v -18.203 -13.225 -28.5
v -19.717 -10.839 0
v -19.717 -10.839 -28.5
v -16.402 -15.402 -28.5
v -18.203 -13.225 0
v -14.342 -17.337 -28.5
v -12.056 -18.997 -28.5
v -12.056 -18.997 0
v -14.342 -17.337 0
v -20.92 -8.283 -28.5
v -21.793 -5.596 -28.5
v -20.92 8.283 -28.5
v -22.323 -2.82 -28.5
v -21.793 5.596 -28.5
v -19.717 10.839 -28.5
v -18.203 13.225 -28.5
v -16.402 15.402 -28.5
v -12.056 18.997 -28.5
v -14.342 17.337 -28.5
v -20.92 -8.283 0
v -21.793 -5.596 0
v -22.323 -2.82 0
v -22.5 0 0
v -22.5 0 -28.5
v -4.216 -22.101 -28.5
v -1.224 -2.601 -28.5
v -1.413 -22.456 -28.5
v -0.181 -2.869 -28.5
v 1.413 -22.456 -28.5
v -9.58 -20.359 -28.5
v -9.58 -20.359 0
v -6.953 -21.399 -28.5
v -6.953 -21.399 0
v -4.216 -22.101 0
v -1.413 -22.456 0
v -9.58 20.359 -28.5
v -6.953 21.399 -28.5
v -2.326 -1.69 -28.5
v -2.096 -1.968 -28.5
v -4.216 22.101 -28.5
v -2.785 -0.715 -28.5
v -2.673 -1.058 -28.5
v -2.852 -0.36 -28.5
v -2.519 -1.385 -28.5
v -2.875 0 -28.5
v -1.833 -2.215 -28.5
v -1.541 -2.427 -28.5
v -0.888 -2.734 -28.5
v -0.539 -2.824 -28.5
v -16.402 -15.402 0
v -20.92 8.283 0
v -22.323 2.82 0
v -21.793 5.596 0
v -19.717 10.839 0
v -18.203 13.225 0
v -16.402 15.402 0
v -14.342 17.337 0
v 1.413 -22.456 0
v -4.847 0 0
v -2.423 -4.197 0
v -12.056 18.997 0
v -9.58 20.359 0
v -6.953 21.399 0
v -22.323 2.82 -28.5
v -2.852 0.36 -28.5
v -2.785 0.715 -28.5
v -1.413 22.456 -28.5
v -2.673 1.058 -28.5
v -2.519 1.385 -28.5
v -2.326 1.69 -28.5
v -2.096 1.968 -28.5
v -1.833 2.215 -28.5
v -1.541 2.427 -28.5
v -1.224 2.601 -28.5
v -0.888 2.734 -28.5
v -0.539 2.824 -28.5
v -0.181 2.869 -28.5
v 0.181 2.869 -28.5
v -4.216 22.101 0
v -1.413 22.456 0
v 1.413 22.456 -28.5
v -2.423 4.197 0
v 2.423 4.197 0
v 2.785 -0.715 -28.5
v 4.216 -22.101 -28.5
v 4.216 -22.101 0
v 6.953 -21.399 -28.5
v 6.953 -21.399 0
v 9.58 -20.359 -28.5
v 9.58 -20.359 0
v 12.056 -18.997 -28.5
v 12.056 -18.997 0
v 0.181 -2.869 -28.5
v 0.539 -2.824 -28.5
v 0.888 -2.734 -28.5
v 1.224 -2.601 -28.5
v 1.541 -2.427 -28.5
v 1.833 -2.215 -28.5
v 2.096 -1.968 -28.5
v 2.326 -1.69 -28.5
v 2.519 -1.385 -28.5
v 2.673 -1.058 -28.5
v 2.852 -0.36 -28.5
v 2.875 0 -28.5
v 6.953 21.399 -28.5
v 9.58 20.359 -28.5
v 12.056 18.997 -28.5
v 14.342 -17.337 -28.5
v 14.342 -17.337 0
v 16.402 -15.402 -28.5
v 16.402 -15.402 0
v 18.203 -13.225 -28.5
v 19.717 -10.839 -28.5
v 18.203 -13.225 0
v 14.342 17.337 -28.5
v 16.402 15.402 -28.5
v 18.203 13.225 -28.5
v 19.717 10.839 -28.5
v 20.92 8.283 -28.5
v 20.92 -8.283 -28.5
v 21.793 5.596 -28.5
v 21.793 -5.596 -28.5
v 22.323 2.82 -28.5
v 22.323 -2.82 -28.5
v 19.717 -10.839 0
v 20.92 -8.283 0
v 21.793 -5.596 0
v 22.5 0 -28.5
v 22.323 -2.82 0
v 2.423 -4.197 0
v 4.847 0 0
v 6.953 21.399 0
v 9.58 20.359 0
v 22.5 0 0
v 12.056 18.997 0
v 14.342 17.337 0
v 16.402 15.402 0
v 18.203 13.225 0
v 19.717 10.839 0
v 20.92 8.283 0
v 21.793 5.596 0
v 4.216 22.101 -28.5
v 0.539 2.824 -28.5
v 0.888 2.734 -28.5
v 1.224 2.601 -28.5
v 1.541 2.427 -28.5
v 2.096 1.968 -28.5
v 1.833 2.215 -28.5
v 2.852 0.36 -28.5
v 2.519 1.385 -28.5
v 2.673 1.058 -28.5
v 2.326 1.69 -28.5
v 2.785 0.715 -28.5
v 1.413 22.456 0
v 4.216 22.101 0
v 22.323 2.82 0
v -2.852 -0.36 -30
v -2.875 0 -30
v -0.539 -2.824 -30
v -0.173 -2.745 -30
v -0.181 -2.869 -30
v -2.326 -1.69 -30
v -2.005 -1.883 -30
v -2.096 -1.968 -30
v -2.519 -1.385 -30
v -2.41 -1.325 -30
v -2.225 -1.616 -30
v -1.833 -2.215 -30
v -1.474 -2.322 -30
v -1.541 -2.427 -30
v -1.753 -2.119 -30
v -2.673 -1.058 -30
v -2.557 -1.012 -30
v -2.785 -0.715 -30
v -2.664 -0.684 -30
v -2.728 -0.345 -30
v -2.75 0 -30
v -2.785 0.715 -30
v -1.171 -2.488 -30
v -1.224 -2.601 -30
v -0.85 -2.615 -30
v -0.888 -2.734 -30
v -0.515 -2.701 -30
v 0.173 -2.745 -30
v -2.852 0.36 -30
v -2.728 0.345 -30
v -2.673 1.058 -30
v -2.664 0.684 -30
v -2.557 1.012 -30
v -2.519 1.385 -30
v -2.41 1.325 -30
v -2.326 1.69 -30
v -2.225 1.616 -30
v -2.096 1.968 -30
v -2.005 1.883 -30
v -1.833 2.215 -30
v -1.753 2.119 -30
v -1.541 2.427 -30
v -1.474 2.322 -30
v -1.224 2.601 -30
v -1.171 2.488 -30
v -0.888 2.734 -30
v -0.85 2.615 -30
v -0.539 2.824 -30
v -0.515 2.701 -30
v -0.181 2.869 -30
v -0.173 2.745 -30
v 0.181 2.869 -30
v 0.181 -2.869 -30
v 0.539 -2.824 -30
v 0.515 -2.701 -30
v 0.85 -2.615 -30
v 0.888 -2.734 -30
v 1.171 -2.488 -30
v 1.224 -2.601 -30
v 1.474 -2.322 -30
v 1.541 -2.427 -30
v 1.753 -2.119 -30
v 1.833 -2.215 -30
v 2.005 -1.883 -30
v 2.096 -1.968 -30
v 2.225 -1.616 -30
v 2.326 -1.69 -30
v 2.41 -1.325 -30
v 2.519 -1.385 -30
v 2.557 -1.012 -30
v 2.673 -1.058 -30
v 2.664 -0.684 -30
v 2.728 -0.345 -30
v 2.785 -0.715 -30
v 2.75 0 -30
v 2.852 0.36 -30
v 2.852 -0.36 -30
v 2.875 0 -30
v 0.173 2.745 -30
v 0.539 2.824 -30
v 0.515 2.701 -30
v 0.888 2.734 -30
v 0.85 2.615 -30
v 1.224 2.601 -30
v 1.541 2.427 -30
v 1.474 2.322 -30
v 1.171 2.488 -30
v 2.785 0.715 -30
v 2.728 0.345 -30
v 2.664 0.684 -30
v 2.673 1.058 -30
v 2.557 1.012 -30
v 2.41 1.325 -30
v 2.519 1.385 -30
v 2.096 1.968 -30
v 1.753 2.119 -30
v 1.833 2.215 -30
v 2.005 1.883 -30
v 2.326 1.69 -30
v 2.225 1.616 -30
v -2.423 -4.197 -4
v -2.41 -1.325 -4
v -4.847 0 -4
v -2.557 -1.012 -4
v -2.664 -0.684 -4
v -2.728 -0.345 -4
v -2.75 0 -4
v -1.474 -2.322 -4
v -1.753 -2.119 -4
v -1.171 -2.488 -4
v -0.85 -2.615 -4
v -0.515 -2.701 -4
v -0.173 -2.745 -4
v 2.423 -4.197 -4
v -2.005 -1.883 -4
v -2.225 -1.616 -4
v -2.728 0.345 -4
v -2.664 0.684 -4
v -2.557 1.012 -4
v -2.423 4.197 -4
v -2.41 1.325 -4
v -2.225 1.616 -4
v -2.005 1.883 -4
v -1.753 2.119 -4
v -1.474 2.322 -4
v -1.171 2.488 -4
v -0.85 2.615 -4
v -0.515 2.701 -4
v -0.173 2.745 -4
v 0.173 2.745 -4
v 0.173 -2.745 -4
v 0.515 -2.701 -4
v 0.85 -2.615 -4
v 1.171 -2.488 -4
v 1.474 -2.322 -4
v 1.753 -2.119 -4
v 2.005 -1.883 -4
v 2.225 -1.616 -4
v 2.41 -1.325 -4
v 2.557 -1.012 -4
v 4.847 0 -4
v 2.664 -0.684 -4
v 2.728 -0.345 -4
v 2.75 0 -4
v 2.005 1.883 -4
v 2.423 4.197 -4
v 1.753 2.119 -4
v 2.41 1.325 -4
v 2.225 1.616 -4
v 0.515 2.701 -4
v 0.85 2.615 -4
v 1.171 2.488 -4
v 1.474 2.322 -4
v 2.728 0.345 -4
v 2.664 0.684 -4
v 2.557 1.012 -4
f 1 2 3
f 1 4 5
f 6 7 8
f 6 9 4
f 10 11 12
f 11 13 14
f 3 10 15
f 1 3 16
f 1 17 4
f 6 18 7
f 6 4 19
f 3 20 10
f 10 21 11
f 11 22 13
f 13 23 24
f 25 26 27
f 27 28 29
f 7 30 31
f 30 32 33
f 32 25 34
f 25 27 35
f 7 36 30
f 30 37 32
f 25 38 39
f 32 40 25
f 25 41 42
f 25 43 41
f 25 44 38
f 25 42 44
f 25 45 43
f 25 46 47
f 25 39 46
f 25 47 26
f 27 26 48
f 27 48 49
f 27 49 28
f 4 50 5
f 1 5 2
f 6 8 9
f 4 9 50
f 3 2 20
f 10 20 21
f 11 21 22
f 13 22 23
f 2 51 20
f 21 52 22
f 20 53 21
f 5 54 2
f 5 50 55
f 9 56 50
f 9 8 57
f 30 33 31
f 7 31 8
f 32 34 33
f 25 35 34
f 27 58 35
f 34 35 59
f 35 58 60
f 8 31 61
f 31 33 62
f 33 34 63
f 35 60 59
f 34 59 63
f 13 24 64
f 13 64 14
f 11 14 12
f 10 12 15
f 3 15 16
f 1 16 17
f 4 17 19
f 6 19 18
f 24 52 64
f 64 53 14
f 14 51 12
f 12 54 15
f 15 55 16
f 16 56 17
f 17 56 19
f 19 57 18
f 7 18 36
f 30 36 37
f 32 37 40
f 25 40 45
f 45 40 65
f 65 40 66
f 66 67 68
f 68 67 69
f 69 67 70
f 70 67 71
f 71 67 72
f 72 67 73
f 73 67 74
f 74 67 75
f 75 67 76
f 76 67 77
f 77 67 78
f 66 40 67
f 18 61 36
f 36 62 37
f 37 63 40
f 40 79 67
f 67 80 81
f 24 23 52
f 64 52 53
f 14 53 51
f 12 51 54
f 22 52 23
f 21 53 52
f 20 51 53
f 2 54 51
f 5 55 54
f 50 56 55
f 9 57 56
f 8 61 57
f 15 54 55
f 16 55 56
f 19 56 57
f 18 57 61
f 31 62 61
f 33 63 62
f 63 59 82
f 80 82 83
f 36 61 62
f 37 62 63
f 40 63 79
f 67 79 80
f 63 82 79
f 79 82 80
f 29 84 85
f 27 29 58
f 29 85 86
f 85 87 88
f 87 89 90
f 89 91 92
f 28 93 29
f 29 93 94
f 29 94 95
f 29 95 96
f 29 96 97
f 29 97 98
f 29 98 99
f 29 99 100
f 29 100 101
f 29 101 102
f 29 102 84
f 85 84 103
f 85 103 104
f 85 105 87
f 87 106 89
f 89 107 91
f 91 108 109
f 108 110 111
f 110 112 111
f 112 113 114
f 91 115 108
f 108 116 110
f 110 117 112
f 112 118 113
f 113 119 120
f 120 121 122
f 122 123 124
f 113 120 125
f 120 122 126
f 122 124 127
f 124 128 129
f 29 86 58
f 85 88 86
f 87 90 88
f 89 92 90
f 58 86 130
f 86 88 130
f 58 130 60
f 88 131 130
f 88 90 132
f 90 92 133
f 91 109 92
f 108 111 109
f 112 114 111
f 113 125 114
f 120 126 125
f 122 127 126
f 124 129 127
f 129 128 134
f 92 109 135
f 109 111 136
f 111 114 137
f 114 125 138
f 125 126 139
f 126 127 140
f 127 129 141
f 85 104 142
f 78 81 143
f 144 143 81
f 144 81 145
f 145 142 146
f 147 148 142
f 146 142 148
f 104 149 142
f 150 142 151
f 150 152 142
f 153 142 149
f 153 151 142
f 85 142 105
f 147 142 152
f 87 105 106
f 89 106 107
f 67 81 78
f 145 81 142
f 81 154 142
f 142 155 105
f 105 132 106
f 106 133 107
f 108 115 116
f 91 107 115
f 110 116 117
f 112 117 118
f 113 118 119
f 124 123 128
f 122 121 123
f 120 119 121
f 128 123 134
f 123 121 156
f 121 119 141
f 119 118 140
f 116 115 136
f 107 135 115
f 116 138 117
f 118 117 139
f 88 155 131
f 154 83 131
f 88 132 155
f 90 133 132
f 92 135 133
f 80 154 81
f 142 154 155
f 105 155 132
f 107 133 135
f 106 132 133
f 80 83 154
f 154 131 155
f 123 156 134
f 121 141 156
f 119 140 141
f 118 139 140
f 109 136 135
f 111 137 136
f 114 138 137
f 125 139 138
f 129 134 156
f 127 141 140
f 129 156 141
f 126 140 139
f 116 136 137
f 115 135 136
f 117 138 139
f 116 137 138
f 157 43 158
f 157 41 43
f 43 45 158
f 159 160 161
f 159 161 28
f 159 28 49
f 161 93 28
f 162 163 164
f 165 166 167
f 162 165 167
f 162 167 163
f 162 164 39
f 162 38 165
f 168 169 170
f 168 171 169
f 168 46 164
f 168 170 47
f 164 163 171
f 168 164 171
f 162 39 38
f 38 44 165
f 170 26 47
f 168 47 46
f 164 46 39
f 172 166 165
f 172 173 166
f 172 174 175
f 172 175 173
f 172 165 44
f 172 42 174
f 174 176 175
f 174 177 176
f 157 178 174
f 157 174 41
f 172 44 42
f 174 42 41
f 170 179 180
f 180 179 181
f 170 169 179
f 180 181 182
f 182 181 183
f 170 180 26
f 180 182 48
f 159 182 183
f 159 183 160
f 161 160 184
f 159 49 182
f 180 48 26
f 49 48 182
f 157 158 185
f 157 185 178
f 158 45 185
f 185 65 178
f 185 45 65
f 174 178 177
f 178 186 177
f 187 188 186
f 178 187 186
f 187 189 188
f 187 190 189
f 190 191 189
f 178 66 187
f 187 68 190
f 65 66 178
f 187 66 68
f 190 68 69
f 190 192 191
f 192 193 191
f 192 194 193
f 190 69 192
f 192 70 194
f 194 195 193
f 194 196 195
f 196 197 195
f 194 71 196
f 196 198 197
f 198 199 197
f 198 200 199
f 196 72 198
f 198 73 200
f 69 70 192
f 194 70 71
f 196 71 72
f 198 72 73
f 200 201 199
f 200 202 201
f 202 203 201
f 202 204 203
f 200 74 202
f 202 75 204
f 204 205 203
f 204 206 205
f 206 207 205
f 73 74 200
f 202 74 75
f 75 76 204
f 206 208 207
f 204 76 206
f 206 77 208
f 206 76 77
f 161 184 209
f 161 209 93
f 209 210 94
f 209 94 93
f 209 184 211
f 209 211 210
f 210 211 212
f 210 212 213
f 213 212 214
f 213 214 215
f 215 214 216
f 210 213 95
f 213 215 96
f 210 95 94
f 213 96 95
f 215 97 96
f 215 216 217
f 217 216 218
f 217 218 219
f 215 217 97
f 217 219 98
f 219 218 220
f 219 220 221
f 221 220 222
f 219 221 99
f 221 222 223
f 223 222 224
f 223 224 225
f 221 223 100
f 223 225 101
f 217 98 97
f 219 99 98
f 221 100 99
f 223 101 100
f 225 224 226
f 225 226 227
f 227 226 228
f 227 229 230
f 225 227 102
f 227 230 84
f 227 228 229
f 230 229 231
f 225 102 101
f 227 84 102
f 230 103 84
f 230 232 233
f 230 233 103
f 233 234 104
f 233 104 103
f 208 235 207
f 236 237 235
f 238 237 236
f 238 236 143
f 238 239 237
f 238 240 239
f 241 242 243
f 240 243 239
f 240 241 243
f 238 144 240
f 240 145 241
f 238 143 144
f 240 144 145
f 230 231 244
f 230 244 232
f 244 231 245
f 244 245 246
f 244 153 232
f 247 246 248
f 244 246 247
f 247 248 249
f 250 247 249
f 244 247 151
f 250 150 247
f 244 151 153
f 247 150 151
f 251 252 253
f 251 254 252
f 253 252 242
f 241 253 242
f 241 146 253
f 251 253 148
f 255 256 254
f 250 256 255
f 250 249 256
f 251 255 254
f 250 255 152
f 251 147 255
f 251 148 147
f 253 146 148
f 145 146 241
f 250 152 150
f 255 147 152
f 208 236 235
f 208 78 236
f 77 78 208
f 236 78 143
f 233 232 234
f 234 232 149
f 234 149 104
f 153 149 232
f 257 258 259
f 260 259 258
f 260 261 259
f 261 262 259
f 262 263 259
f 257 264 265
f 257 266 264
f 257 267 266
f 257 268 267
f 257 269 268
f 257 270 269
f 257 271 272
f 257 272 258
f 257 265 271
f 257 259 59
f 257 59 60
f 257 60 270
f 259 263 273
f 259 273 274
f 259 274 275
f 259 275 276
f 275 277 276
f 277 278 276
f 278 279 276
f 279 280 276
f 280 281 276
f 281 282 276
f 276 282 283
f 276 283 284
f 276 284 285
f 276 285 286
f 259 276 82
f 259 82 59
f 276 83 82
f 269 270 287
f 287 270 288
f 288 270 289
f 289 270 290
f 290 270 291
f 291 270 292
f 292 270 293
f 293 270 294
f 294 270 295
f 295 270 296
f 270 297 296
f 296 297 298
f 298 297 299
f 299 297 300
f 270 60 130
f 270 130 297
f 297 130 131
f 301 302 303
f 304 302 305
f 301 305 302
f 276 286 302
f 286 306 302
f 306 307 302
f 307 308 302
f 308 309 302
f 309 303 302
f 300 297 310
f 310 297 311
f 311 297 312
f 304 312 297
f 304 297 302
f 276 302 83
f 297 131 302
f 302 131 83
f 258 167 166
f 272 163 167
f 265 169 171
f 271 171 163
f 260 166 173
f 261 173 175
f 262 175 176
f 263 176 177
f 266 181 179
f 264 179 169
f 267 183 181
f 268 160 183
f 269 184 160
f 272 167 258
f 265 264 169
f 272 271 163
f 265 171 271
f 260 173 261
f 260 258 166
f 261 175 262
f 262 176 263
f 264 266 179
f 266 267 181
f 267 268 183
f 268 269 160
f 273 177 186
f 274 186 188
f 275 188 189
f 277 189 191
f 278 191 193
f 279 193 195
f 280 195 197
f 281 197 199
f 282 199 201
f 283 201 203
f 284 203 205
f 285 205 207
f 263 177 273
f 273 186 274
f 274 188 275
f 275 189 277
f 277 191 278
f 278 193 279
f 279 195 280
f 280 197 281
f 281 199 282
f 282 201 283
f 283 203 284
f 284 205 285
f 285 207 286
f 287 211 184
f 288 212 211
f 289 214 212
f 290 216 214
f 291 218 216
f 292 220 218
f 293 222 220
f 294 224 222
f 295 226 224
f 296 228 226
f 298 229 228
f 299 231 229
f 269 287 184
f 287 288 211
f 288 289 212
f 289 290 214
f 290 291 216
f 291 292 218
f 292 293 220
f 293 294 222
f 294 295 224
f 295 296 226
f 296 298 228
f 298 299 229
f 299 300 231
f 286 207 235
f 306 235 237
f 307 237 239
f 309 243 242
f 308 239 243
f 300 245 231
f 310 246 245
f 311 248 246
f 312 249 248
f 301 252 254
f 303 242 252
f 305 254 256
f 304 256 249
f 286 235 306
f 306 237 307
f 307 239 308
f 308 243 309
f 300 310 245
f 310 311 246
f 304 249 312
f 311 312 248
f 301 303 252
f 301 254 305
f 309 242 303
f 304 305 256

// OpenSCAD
$fn = 50;

difference() {
	union() {
		translate(v = [0, 0, -28.5]) {
			cylinder(h = 28.5, r = 22.5);
		}
		#translate(v = [0, 0, -30.0]) {
			cylinder(h = 30, r = 2.875);
		}
	}
	union() {
		translate(v = [0, 0, 0]) {
			rotate(a = [0, 0, 0]) {
				difference() {
					union() {
						translate(v = [0, 0, -4]) {
							linear_extrude(height = 4) {
								polygon(points = [[4.8468, 0.0], [2.4234000000000004, 4.197451927062417], [-2.423399999999999, 4.197451927062417], [-4.8468, 5.935618106107392e-16], [-2.423400000000002, -4.197451927062416], [2.423399999999997, -4.197451927062419]]);
							}
						}
					}
					union();
				}
			}
		}
		#translate(v = [0, 0, -100.0]) {
			cylinder(h = 200, r = 2.75);
		}
	}
}
